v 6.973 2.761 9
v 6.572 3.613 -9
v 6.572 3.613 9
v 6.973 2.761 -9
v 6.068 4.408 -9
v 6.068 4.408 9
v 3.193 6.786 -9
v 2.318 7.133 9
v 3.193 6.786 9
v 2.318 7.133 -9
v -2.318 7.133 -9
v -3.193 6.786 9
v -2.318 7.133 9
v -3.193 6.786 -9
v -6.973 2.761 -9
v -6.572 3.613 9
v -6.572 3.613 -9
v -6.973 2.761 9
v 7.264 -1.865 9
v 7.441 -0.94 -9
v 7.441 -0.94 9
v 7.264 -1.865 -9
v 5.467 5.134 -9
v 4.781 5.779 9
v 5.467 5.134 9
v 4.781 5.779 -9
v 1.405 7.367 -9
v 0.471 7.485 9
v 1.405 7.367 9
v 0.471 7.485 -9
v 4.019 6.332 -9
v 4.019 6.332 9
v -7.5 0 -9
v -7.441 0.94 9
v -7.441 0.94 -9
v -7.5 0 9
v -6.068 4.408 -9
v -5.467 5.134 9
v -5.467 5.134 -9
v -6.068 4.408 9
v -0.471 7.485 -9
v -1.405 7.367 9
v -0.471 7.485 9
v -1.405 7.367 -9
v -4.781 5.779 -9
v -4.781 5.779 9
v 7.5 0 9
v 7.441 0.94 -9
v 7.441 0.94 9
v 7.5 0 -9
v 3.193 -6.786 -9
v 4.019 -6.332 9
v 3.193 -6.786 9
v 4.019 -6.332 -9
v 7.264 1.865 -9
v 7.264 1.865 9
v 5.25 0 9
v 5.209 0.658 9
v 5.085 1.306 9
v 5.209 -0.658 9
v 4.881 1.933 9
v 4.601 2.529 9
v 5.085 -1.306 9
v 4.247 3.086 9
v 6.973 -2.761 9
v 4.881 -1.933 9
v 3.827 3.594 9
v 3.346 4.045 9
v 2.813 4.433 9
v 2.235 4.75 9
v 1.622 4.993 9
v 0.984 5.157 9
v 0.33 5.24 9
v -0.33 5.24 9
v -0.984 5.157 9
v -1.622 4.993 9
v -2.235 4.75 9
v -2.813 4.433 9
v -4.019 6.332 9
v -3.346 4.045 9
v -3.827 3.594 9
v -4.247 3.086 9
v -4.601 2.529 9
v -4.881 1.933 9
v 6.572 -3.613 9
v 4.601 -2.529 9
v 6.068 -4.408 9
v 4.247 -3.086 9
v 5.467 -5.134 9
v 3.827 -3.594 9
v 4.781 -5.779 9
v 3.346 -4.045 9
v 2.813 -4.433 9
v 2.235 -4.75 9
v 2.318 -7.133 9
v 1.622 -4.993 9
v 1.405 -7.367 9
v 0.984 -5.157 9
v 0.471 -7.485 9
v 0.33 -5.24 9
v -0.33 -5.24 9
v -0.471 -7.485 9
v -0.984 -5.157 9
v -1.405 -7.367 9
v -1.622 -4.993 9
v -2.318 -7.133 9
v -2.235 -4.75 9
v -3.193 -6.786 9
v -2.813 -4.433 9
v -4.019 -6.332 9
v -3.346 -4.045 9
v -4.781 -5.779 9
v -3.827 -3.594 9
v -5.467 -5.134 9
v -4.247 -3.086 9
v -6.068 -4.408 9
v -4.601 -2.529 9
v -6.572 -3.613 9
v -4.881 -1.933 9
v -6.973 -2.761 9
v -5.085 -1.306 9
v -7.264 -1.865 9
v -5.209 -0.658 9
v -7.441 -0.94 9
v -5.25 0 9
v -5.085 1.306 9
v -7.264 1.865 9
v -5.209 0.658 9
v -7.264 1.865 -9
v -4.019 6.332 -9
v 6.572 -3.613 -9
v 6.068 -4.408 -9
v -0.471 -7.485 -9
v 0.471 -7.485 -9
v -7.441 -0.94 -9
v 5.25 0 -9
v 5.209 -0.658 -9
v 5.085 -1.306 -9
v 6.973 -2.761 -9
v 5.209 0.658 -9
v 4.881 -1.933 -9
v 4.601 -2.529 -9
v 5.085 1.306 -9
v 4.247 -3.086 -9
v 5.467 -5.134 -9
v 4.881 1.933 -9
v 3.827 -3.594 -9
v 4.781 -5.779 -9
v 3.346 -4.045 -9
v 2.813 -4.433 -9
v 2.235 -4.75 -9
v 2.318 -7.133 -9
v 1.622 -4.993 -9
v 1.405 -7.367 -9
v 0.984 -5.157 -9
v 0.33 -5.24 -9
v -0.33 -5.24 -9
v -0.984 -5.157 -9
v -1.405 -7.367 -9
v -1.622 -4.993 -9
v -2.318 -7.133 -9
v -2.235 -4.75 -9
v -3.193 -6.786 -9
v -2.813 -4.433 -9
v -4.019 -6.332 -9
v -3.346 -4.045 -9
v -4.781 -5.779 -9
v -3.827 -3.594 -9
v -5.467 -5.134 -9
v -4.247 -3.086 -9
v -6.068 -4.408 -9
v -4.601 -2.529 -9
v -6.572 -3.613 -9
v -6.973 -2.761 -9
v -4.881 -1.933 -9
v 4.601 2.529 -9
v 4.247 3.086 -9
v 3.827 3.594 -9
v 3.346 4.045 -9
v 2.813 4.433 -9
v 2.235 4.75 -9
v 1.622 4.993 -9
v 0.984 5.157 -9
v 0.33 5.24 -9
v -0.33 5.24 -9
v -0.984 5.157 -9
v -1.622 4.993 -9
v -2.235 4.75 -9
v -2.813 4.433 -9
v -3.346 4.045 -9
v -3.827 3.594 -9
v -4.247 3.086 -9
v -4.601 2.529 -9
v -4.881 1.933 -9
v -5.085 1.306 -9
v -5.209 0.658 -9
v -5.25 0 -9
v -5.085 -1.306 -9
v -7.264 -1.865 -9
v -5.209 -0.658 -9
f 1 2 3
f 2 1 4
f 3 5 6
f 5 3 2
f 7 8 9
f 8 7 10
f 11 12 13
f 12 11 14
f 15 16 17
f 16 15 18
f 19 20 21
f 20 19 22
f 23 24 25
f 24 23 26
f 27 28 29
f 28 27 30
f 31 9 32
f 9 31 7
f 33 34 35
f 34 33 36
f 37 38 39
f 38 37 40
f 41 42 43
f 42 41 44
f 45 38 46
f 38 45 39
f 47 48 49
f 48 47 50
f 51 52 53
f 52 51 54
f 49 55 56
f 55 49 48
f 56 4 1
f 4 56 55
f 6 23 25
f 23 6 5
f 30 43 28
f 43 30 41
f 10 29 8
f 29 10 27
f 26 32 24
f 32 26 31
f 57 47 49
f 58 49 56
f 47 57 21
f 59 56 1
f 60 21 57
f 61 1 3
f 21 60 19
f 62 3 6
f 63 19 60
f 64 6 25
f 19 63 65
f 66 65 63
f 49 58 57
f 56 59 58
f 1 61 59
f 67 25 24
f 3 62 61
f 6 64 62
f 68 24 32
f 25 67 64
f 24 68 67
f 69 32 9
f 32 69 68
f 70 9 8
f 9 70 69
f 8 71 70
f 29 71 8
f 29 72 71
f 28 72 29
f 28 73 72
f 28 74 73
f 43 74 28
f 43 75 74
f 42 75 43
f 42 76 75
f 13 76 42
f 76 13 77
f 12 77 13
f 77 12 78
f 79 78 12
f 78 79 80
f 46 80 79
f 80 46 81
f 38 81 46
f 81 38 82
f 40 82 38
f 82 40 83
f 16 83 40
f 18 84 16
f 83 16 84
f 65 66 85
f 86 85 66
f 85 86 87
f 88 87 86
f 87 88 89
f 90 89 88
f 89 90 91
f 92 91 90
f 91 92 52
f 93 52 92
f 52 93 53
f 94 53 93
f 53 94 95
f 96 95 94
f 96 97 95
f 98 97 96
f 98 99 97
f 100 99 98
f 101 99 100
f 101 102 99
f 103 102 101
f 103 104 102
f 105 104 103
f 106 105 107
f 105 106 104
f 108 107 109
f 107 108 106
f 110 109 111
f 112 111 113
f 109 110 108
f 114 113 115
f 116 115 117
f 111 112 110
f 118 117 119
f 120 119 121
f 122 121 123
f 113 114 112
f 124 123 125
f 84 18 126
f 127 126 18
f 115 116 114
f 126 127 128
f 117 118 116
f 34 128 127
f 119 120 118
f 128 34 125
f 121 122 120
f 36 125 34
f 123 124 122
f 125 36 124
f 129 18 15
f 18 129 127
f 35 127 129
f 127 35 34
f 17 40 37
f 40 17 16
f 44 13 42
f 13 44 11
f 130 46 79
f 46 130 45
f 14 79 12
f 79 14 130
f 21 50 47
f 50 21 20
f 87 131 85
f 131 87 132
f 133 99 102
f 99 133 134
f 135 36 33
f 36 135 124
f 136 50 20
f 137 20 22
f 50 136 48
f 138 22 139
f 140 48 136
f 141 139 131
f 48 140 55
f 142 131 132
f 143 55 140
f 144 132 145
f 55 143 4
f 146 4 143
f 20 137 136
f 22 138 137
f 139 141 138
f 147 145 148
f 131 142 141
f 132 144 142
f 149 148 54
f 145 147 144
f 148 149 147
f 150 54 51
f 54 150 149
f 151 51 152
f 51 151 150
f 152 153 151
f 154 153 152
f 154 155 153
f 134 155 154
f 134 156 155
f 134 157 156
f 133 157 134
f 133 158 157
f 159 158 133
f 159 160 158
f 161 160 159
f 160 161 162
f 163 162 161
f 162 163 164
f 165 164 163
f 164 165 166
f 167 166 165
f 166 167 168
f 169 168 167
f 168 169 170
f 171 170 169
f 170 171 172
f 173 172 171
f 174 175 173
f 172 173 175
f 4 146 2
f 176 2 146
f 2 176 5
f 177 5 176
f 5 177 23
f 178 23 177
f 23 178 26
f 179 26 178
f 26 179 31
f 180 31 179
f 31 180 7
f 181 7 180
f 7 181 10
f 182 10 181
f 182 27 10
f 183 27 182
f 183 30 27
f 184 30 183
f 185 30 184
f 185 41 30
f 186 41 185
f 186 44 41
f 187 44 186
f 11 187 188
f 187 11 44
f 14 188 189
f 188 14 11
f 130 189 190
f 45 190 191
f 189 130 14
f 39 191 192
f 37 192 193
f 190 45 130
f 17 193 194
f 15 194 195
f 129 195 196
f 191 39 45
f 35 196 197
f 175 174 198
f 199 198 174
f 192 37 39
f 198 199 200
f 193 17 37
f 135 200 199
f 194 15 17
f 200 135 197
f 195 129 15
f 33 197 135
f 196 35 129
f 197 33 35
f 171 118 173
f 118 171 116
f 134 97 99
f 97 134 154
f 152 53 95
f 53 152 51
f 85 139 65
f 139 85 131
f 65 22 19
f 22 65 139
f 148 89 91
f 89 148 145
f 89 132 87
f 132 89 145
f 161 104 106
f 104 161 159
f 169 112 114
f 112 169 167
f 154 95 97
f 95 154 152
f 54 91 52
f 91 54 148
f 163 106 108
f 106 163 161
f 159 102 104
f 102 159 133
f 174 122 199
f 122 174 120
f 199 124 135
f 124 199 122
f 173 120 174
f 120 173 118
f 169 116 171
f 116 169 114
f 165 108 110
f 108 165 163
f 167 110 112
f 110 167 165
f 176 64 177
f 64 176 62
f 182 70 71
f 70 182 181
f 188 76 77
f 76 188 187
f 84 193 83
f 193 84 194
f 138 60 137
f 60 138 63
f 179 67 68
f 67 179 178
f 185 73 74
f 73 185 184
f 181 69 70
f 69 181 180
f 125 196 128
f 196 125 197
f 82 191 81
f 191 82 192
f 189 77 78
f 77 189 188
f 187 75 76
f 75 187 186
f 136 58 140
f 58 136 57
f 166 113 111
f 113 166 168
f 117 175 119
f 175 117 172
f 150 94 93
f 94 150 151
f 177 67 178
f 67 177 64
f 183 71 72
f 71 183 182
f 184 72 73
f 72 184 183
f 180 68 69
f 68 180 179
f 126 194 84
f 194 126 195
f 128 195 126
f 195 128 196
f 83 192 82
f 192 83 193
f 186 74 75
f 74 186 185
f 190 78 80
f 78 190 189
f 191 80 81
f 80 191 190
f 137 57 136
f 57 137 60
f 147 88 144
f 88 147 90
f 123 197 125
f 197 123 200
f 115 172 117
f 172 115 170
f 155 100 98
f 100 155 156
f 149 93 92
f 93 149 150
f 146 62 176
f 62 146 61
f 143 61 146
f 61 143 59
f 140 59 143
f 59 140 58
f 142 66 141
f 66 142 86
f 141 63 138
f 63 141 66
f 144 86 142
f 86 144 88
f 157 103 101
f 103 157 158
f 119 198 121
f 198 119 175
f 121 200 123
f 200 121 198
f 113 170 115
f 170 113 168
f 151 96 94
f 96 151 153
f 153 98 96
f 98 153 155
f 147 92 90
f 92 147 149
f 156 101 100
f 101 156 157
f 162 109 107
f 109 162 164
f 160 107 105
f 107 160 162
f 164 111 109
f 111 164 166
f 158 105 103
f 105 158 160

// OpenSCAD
$fn = 50;


difference() {
	union() {
		translate(v = [0, 0, -9.0000000000]) {
			cylinder(h = 18, r = 7.5000000000);
		}
	}
	union() {
		translate(v = [0, 0, -100.0000000000]) {
			cylinder(h = 200, r = 5.2500000000);
		}
	}
}
